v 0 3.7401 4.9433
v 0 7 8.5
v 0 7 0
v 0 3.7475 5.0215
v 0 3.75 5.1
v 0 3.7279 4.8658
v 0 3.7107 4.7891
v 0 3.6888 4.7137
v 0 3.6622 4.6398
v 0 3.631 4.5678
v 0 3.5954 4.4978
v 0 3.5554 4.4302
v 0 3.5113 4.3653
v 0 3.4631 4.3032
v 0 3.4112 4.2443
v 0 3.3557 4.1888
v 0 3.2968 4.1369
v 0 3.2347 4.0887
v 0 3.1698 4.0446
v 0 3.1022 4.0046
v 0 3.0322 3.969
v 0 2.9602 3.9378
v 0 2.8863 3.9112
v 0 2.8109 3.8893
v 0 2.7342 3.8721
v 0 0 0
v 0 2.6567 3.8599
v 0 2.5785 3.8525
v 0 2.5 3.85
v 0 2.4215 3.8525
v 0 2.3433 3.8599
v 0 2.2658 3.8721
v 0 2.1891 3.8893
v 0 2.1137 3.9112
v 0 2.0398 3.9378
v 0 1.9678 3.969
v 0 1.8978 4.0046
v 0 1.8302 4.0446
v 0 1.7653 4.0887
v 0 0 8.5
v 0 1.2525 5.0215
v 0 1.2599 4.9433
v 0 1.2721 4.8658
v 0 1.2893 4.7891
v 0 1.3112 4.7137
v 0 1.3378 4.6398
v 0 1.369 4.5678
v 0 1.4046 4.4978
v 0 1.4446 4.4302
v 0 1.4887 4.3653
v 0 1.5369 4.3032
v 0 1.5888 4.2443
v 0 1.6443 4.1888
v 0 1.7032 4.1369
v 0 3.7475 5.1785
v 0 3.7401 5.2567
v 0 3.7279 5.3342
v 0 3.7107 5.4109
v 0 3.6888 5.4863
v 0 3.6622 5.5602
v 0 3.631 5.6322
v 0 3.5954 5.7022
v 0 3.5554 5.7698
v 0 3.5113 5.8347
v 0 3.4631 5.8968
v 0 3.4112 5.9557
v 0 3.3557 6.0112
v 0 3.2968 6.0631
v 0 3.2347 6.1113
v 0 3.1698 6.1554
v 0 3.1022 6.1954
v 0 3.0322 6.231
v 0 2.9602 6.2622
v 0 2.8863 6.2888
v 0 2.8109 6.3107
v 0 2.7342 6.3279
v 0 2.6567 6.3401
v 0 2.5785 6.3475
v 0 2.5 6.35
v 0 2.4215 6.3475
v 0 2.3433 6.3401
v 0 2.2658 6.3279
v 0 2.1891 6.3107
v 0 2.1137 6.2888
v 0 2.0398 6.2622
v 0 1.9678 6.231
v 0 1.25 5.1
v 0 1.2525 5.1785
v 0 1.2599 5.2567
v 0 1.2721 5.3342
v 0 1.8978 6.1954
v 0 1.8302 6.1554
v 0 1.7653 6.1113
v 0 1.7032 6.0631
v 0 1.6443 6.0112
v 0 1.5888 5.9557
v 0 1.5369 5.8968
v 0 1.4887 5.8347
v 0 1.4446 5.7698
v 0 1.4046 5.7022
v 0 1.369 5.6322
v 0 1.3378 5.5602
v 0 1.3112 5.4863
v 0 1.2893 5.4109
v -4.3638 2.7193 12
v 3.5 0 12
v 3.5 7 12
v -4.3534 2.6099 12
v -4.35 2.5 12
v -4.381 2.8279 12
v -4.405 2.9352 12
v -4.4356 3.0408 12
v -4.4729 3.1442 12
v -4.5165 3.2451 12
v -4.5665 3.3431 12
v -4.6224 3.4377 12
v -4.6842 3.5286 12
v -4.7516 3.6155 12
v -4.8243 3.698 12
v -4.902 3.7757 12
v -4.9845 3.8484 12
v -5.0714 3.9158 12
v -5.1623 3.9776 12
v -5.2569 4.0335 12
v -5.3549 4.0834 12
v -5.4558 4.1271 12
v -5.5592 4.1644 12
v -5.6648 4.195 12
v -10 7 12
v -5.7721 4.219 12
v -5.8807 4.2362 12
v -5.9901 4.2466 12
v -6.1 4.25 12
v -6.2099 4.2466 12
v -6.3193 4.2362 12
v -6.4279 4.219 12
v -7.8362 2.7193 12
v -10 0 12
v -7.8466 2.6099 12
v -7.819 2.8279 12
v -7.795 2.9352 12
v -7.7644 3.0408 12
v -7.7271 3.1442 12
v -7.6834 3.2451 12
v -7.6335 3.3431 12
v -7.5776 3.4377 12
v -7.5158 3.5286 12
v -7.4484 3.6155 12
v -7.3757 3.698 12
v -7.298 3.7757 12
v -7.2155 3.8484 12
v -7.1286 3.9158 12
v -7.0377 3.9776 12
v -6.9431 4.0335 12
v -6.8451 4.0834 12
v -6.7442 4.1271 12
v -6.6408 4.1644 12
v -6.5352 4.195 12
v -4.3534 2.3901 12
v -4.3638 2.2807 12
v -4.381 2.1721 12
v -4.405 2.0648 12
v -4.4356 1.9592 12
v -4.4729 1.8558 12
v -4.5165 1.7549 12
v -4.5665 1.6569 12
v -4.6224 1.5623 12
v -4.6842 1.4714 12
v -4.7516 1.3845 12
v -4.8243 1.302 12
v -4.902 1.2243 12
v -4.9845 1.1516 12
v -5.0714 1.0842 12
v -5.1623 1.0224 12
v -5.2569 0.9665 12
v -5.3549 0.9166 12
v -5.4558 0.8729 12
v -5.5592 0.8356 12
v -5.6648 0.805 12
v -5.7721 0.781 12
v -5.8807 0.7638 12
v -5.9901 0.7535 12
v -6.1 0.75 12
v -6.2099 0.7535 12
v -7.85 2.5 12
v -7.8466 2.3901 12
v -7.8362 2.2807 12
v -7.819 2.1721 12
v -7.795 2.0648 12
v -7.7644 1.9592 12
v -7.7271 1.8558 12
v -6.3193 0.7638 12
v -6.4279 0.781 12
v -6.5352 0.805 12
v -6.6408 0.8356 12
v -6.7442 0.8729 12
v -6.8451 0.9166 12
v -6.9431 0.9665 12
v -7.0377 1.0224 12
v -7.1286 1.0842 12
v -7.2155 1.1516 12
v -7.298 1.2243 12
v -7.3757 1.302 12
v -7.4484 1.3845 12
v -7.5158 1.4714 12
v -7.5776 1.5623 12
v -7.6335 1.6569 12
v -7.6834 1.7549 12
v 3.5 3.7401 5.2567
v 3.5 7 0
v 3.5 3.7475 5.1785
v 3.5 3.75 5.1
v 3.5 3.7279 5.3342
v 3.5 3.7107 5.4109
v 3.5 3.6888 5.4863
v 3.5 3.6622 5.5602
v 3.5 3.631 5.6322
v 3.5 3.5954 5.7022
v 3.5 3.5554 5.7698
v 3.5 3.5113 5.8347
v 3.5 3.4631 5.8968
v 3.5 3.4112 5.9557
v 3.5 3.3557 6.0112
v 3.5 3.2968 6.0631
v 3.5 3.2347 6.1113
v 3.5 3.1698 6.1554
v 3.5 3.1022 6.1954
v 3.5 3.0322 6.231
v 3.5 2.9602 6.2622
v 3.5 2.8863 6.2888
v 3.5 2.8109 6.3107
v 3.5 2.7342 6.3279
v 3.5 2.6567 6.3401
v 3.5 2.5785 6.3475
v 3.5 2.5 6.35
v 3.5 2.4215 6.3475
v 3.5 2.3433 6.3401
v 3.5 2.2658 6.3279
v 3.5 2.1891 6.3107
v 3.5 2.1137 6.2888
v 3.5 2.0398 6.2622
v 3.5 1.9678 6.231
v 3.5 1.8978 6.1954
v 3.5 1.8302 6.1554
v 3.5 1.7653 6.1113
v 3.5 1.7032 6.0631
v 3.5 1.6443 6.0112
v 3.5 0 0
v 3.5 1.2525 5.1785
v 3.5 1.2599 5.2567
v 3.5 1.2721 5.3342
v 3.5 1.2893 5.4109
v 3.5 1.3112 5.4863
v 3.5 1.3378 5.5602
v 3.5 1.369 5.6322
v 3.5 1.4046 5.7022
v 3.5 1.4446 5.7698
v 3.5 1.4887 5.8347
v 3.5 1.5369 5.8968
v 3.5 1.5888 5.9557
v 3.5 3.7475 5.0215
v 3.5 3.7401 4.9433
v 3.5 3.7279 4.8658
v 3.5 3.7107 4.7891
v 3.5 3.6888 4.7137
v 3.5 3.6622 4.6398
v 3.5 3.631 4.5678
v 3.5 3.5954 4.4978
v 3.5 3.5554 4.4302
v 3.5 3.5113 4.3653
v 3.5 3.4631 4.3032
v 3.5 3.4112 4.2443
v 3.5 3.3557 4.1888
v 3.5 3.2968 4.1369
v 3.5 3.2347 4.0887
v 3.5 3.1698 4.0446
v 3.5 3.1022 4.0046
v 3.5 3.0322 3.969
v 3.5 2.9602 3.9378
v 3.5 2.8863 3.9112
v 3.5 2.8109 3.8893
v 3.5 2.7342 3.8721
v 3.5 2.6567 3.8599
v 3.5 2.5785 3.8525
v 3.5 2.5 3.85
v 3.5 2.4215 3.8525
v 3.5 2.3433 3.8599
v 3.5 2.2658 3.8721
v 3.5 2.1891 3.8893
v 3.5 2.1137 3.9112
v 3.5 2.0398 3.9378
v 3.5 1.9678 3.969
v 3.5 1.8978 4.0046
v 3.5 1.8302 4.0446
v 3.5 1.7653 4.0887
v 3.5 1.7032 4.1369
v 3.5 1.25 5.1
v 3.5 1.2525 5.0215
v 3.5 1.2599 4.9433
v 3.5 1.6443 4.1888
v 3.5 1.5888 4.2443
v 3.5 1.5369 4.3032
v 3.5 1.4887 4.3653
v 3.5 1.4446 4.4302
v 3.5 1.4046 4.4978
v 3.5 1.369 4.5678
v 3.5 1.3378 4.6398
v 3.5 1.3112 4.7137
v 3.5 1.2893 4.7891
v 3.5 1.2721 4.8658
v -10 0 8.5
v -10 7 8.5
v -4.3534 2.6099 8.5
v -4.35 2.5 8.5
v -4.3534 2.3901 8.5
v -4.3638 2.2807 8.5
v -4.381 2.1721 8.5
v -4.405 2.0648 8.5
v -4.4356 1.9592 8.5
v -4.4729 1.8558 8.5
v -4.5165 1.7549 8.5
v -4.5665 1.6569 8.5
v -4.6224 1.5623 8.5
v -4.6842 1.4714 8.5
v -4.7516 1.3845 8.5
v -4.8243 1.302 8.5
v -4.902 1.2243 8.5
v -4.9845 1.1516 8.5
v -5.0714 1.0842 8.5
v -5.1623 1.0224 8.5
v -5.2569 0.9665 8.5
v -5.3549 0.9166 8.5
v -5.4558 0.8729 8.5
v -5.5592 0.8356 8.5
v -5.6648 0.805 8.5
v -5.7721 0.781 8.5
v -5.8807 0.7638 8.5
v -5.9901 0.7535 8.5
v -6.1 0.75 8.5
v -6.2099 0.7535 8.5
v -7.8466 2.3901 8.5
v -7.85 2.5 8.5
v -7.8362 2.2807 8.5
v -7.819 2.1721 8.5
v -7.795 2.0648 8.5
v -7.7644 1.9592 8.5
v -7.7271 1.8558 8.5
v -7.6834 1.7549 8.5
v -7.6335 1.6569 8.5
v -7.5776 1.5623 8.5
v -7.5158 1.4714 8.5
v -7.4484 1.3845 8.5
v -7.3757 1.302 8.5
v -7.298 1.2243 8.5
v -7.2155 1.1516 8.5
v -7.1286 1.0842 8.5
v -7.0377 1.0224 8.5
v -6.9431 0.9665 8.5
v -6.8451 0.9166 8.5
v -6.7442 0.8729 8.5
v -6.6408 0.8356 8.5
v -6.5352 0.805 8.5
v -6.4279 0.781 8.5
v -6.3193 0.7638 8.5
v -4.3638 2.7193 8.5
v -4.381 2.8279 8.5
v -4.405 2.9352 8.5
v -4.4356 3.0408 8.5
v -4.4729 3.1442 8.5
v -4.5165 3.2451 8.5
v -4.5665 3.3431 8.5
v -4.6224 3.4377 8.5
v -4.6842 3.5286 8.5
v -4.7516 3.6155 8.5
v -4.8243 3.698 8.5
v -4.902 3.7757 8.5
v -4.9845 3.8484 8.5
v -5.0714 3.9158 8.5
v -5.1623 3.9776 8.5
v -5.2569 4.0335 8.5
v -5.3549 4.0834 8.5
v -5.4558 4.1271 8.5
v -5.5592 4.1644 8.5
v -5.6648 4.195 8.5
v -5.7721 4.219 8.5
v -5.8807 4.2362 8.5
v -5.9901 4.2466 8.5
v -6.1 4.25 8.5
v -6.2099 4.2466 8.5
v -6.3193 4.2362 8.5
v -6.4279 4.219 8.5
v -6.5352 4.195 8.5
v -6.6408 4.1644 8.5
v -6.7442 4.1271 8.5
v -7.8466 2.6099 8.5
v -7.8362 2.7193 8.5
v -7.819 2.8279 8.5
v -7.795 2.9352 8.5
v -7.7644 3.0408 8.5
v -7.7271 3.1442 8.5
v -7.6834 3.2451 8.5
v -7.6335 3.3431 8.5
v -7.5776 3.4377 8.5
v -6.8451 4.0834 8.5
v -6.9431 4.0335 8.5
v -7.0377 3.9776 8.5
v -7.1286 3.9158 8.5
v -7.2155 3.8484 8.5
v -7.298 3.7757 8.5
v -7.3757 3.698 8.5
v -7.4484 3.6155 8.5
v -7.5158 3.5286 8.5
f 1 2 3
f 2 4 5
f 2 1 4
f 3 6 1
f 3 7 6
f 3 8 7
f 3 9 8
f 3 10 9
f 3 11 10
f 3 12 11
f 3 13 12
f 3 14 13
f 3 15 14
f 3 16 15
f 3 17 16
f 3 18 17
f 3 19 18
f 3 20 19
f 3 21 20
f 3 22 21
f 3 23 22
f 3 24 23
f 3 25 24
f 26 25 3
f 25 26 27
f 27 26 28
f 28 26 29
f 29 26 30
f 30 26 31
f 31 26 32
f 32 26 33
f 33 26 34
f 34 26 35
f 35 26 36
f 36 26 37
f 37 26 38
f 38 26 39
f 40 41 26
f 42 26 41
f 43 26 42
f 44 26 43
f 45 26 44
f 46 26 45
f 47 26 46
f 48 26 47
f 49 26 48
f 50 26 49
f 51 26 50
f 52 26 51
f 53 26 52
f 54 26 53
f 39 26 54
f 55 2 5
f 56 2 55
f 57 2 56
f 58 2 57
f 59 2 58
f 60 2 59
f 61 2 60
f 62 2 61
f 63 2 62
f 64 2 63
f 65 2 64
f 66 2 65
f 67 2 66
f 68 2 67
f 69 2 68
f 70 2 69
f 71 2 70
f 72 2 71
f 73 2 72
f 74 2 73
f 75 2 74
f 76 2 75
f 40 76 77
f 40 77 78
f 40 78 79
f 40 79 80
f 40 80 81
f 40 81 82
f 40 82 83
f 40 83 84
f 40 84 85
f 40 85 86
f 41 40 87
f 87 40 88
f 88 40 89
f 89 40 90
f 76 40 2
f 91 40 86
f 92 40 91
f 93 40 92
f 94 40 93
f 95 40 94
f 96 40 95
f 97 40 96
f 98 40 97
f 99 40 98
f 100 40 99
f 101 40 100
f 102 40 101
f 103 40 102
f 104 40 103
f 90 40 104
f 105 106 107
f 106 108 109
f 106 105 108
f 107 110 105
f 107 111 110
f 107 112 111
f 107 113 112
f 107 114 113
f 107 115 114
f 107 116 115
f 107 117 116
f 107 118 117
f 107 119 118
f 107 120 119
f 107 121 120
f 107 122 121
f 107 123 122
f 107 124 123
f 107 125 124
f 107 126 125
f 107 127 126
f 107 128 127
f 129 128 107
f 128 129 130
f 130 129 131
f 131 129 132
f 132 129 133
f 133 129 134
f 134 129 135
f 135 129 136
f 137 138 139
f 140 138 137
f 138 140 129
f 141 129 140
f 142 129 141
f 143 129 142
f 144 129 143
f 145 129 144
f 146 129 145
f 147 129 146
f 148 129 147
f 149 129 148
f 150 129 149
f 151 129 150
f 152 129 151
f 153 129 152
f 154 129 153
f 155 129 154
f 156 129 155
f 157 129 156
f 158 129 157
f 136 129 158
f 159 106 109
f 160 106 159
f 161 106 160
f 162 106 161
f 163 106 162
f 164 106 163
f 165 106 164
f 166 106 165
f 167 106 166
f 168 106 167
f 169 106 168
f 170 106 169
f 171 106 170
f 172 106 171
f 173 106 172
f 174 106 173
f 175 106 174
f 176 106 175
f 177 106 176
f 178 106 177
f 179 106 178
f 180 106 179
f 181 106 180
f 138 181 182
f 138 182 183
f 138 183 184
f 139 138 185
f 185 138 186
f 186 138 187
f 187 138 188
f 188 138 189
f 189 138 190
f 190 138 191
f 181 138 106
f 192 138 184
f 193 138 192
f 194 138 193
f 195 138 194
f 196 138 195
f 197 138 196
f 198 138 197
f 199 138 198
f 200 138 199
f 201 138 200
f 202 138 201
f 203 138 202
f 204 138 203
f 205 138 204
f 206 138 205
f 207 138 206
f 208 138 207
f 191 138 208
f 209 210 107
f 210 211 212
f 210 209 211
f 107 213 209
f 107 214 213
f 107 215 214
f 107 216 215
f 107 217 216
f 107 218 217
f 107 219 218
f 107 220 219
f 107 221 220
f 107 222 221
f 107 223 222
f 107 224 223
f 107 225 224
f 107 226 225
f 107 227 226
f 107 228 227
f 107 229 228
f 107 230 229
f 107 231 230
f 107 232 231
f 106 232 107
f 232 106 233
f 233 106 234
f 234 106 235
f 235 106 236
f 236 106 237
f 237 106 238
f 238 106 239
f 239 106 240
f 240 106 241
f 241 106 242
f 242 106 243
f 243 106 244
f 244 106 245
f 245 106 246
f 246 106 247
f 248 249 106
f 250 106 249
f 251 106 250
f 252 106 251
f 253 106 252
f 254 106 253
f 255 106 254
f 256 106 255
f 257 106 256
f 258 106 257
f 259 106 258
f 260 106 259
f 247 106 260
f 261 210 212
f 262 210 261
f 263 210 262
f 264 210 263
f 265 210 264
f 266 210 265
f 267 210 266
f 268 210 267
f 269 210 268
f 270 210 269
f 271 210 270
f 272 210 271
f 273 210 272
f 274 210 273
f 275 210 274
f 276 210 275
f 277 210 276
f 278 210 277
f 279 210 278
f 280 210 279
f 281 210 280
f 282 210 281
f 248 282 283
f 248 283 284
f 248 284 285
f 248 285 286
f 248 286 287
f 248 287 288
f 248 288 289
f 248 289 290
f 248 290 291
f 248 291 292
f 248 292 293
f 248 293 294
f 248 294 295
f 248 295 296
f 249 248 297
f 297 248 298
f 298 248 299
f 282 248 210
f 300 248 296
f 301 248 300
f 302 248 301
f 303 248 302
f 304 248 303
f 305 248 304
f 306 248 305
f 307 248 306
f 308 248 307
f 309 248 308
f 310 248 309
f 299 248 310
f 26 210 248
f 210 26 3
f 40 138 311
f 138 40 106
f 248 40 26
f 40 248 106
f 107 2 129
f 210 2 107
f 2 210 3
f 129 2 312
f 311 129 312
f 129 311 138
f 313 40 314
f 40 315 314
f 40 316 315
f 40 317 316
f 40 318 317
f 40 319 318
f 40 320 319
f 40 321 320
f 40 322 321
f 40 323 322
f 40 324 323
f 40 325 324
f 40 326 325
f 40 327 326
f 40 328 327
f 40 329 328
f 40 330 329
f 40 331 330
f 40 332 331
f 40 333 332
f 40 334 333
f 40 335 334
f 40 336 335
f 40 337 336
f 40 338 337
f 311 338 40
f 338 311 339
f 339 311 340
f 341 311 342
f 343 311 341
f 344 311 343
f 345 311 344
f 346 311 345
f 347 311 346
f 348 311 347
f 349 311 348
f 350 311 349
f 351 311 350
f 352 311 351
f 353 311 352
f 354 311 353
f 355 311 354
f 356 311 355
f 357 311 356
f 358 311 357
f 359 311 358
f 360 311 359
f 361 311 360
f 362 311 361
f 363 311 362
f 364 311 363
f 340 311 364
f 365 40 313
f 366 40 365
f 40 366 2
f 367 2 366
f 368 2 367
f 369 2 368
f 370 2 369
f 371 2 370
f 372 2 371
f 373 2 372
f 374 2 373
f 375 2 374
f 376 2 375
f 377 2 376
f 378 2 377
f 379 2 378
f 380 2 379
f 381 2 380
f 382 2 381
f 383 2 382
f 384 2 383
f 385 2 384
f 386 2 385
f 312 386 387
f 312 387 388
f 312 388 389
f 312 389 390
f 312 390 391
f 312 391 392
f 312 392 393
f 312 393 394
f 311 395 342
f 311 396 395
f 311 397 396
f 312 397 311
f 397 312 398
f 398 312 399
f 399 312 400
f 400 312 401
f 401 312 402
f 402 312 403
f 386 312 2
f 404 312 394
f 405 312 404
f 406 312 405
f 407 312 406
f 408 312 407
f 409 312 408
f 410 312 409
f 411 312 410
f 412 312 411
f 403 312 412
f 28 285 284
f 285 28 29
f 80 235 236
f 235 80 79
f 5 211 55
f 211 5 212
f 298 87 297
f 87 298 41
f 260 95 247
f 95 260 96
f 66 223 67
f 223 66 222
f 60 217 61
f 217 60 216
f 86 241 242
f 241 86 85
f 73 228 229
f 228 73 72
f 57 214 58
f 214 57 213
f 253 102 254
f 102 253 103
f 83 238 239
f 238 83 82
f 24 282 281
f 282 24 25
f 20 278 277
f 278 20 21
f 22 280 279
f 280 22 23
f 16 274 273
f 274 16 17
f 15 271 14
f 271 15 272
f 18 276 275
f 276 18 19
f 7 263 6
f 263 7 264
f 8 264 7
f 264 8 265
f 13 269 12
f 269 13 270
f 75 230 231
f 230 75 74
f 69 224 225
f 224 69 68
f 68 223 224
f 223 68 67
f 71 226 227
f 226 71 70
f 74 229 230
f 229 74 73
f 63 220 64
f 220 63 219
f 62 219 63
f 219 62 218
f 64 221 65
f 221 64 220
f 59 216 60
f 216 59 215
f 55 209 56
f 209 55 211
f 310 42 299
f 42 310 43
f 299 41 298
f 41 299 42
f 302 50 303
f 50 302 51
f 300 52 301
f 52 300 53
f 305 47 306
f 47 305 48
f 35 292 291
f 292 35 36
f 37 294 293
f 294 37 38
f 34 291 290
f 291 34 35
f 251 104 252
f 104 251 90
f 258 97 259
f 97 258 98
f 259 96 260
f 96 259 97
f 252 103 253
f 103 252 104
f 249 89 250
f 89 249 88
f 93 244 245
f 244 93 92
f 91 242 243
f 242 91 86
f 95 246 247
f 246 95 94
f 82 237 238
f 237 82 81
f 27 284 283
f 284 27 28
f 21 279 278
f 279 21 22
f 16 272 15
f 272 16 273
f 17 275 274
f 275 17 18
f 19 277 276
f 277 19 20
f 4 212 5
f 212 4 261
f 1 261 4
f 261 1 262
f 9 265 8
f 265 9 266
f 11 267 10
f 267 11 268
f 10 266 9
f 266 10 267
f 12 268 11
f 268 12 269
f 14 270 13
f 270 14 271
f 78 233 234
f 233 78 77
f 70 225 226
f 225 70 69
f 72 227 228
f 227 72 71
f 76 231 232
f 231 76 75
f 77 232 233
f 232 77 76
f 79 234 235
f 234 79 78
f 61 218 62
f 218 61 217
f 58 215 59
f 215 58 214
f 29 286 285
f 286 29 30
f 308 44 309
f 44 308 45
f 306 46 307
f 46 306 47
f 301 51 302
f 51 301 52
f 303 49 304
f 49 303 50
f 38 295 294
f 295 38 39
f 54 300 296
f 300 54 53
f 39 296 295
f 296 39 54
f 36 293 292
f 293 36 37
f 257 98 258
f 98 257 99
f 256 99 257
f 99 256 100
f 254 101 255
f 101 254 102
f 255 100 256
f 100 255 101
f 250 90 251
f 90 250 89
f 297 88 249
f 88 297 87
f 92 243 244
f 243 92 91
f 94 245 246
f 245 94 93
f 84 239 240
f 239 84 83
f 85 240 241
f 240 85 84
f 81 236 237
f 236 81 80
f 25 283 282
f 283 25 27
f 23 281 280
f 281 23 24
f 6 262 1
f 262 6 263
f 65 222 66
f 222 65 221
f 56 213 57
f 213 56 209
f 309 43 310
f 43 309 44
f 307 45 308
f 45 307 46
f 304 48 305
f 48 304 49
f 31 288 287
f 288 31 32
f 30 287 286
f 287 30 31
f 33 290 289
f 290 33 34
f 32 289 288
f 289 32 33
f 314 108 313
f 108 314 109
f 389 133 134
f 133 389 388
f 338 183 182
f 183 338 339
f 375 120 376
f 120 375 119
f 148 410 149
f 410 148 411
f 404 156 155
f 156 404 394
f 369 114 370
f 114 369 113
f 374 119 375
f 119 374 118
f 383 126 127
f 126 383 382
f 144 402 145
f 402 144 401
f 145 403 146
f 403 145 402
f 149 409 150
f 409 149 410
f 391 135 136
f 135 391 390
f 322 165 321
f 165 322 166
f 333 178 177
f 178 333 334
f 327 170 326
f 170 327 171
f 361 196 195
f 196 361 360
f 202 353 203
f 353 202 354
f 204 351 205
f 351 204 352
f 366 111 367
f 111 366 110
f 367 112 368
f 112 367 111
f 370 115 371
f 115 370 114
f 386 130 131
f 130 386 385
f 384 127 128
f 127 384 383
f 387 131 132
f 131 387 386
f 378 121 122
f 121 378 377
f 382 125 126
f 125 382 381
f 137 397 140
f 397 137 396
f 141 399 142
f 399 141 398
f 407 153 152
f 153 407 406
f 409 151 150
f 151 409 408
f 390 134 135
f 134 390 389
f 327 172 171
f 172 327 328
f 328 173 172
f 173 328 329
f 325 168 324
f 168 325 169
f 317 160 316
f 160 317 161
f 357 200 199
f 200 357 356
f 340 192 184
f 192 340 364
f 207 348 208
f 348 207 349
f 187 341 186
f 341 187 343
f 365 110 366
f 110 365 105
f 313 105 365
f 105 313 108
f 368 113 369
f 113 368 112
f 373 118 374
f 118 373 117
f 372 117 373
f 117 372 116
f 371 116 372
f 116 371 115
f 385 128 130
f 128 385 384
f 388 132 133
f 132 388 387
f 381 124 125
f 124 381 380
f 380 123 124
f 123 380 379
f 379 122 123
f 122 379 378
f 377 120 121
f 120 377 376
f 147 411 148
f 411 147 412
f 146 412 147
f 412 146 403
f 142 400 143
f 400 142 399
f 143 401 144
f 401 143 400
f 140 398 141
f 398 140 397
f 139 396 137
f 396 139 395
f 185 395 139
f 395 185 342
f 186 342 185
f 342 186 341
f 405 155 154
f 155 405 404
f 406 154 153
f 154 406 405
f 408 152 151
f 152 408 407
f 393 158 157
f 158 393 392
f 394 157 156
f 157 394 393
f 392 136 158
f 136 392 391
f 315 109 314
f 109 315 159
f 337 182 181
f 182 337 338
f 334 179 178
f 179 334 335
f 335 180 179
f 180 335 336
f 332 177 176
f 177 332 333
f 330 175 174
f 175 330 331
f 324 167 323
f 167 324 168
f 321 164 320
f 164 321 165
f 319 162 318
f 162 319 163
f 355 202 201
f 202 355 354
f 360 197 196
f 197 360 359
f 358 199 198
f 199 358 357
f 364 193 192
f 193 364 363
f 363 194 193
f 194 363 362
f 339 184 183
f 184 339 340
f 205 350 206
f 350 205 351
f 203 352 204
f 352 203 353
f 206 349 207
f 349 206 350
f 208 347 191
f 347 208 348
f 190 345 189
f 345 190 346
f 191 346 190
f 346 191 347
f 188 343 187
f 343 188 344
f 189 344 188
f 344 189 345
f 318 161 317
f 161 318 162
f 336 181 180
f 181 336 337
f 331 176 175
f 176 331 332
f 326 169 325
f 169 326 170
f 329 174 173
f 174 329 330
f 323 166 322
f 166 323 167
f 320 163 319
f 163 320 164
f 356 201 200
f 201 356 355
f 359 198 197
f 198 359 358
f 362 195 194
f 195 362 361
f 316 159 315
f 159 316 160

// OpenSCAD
/*
    Sachisti - Stopar 2.GEN - SG90 servo holder
    ©TechniX_SK & Sachisti 2019
*/

difference() {
    right_holder();
    holes();
}


module right_holder() {
    translate([0, 0, 0])
        cube([3.5, 7, 12]);
    translate([-10, 0, 8.5])
        cube([12, 7, 3.5]);
}

module holes() { 
    rotate([0, 90, 0])
        translate([-5.1, 2.5, -0.1])
            cylinder(h=3.7, d=2.5, $fn=100);
    translate([-6.1, 2.5, 8.4])
            cylinder(h=3.7, d=3.5, $fn=100);
}
